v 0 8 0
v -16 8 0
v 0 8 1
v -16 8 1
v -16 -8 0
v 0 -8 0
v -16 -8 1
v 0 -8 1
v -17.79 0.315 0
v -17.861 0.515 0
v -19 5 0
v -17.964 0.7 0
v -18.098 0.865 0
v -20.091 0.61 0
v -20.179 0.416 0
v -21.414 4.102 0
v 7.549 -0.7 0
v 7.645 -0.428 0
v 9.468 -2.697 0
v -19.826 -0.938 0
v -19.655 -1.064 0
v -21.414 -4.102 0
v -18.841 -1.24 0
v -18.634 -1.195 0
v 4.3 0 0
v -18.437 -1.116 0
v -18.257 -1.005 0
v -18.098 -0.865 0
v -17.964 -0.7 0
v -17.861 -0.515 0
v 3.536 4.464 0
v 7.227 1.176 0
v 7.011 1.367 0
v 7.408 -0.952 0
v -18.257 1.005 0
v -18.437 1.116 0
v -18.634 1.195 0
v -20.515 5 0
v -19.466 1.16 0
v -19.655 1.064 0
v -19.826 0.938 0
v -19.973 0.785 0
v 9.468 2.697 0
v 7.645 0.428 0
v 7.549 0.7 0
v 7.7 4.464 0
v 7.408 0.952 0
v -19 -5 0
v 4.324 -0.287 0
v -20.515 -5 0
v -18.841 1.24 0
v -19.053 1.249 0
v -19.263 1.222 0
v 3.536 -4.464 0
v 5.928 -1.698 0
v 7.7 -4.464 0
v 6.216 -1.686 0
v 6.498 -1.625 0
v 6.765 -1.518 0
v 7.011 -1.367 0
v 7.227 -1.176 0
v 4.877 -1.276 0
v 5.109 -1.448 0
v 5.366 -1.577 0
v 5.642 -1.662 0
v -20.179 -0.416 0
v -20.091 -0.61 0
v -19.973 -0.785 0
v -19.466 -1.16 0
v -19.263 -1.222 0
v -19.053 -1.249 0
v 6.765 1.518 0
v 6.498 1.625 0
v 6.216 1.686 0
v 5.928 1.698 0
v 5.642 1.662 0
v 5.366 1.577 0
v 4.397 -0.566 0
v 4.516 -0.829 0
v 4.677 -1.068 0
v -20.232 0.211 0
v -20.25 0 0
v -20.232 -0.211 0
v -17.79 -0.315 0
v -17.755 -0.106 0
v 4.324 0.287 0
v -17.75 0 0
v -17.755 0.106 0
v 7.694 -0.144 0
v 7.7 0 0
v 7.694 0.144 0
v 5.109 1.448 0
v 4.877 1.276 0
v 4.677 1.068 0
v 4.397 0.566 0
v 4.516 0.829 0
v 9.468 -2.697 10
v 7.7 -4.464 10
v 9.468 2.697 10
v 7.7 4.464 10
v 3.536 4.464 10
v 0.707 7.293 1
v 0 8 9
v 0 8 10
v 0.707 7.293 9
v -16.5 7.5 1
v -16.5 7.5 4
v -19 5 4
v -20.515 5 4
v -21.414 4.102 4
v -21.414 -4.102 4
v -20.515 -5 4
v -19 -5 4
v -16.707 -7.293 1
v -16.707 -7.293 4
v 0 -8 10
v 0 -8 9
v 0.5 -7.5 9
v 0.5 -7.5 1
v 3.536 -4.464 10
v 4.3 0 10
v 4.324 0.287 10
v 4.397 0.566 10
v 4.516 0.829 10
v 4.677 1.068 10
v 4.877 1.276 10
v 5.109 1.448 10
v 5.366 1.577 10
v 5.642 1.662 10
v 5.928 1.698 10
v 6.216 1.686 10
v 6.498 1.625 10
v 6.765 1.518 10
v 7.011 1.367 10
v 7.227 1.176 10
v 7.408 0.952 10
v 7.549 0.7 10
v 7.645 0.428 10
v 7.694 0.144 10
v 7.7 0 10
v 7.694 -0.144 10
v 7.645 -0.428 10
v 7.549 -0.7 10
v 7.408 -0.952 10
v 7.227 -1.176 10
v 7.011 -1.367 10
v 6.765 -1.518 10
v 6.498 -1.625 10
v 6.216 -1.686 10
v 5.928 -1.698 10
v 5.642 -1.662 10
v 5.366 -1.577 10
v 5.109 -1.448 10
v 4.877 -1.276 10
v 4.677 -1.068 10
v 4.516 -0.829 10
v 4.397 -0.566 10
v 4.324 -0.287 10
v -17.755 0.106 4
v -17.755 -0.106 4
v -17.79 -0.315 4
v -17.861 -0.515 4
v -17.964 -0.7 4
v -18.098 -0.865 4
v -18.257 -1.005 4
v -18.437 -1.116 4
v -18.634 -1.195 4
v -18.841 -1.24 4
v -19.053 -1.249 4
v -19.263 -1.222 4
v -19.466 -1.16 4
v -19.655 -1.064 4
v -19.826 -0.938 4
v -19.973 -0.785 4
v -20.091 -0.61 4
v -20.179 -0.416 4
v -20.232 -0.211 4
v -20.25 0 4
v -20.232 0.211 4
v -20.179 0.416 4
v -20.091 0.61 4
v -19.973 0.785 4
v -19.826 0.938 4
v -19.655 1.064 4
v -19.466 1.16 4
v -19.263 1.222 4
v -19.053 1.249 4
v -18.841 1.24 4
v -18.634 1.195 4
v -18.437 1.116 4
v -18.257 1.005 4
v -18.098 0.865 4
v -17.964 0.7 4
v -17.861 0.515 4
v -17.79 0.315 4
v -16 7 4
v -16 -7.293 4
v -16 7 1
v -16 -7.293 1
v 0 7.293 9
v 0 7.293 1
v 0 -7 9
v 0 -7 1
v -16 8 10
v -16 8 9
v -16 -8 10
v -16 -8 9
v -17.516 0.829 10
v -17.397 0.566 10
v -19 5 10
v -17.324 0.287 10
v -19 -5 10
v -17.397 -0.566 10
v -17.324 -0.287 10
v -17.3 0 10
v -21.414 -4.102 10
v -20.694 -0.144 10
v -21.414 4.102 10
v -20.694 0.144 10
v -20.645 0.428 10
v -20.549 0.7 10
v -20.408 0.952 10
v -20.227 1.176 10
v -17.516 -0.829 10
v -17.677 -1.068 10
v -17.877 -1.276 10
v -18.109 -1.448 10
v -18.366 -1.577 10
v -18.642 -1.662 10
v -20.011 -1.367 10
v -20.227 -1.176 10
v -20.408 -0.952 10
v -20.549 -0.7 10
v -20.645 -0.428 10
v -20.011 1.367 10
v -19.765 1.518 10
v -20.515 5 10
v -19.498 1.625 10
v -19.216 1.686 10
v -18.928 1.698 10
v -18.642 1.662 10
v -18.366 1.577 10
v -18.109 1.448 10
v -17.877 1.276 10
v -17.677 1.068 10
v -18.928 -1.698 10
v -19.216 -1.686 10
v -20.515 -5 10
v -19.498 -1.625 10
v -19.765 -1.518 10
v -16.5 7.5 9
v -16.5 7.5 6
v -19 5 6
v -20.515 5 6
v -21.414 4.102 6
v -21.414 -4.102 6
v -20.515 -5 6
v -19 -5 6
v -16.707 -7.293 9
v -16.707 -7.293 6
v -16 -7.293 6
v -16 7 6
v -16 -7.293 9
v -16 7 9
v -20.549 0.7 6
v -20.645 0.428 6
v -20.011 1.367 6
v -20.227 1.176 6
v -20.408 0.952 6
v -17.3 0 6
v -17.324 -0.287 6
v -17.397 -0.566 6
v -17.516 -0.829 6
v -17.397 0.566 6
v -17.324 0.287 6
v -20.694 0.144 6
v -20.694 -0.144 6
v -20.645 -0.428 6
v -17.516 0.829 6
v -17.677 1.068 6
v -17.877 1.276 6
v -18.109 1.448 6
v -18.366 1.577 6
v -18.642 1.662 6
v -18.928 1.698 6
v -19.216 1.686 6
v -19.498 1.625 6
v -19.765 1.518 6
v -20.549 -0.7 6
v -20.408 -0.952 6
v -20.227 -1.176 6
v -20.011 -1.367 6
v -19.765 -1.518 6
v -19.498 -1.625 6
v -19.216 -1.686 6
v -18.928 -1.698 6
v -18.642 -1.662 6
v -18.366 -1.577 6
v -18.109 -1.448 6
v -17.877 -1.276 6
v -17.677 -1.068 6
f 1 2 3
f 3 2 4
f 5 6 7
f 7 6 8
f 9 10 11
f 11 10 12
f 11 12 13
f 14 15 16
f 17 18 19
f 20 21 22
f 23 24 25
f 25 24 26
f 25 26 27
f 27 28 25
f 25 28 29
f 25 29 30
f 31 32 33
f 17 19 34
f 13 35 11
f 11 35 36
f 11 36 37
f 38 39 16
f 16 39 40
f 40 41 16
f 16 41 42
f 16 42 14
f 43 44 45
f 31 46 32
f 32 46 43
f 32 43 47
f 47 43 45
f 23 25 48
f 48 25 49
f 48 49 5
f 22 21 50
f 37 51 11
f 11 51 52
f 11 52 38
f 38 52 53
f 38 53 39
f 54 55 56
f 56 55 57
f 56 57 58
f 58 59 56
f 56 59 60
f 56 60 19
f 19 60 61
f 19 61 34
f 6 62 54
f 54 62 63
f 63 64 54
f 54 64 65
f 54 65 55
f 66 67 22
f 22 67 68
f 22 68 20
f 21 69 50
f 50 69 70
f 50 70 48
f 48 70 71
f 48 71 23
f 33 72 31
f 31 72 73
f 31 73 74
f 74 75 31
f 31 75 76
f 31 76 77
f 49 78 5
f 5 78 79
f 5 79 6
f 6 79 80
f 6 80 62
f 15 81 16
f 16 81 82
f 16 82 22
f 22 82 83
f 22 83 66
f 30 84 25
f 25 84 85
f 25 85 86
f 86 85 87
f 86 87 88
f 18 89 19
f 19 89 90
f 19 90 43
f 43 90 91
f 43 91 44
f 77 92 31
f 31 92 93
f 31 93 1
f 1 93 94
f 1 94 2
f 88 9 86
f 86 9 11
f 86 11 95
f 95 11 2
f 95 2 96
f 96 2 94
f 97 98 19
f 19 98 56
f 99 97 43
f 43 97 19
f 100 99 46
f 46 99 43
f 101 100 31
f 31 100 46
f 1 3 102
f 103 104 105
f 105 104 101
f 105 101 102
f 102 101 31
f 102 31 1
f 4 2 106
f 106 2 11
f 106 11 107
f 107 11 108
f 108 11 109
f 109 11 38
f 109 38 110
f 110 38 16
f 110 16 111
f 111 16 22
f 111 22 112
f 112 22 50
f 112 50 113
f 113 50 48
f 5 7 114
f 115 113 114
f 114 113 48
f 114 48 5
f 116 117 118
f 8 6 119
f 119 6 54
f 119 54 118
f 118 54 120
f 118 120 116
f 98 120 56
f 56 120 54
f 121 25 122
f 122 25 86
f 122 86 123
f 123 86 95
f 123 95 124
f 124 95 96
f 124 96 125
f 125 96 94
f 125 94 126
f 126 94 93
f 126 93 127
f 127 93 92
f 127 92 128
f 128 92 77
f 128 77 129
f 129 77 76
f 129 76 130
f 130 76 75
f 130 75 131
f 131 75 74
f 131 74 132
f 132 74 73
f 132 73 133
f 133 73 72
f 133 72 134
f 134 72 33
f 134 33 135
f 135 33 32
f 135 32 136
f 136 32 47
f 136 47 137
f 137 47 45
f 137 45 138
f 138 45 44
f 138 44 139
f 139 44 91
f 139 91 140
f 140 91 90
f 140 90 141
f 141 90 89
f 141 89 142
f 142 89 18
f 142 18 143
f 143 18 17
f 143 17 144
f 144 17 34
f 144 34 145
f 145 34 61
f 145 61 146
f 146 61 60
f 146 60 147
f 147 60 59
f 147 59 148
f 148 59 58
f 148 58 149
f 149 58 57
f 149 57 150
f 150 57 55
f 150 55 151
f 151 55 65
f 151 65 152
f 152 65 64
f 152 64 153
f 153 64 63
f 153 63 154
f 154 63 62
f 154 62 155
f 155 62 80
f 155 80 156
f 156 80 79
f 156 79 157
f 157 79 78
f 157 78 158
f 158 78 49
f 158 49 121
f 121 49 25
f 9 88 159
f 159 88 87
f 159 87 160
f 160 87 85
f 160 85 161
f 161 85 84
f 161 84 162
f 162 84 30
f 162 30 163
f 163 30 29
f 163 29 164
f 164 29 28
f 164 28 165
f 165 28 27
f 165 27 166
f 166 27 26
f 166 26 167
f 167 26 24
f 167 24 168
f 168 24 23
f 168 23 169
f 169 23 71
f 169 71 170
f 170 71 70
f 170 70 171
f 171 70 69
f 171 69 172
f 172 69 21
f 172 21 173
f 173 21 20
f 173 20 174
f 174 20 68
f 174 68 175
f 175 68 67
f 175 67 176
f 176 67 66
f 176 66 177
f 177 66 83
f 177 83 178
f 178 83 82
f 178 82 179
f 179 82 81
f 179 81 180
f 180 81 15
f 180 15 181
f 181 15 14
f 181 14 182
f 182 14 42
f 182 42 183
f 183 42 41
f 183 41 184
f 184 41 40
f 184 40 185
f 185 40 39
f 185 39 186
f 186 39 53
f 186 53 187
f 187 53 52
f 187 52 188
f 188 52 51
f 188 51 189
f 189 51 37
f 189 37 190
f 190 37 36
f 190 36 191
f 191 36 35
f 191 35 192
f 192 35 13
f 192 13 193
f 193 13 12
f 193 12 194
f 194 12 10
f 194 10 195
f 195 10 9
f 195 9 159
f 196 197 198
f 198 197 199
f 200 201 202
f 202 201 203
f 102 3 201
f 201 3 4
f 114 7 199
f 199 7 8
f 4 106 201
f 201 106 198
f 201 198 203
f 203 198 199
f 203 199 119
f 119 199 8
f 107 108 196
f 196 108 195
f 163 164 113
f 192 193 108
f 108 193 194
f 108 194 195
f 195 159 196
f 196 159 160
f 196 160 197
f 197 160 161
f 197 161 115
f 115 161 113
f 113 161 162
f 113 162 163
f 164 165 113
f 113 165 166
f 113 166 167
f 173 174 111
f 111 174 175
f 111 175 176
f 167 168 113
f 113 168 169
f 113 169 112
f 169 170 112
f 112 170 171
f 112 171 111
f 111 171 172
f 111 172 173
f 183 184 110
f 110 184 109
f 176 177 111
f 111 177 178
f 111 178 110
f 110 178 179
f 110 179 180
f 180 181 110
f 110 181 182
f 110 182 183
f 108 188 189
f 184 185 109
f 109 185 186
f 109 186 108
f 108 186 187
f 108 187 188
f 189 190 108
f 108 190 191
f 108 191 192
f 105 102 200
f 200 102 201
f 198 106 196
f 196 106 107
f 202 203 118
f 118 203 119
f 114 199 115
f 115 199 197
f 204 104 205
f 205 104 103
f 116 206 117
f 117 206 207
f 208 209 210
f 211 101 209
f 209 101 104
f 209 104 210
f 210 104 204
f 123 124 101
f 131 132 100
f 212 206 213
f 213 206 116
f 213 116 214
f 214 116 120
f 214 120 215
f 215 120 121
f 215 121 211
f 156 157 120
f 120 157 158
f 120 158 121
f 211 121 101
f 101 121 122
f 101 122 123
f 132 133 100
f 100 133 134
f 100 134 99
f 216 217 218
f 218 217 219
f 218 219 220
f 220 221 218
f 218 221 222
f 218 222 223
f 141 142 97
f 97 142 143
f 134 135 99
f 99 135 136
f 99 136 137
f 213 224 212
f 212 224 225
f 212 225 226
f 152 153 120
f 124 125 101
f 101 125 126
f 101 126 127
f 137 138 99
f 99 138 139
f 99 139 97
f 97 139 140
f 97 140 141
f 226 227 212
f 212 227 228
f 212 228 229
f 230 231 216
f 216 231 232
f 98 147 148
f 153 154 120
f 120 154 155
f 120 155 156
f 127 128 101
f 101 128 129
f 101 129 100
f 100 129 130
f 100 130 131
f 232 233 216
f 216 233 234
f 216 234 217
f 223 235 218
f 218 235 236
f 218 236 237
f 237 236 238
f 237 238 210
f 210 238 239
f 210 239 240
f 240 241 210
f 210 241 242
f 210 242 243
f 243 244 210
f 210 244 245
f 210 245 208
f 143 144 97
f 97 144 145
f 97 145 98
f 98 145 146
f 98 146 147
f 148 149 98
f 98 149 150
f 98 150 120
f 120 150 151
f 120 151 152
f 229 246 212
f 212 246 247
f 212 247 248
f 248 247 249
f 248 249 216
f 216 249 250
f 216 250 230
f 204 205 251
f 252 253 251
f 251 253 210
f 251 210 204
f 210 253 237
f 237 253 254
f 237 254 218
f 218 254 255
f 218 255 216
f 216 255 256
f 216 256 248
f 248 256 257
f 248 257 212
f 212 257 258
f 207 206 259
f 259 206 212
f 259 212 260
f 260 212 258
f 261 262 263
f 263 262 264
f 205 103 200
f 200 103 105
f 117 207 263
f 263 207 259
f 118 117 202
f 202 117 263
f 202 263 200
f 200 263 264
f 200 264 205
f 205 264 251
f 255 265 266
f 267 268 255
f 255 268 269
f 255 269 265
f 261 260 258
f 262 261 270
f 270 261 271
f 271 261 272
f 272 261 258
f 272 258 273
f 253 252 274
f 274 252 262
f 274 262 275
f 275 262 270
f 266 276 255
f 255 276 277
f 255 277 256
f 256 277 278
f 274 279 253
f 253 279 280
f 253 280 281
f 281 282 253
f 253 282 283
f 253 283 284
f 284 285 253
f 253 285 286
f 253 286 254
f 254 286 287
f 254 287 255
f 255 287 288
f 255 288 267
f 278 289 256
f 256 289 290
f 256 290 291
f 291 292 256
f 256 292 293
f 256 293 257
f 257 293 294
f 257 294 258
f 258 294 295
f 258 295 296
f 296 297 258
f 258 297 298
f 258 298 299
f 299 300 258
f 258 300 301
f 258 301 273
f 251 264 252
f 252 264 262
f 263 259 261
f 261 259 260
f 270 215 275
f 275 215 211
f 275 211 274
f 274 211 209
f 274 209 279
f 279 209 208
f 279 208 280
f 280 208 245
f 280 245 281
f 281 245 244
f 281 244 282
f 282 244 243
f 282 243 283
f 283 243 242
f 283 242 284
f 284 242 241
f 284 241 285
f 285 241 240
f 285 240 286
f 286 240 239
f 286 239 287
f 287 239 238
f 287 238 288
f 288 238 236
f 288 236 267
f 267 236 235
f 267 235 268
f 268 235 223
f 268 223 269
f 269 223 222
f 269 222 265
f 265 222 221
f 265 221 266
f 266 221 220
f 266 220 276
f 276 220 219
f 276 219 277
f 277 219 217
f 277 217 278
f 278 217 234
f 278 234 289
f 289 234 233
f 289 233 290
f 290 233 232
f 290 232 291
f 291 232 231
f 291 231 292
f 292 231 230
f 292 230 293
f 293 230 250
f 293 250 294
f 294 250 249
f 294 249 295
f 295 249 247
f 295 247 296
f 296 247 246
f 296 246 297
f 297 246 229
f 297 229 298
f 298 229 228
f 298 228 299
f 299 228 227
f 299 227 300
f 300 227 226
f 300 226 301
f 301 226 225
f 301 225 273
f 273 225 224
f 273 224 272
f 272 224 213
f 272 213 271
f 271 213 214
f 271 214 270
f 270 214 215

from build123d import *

# Parameters (mm, degrees)
SKETCH1_R             = 1.7
SKETCH1_R_2           = 1.25
BOSS_EXTRUDE1_DEPTH   = 5
SKETCH11_W            = 16
SKETCH11_H            = 16
CUT_EXTRUDE6_DEPTH    = 4
SKETCH13_W            = 7.423787947
SKETCH13_H            = 16.529940363
CUT_EXTRUDE8_DEPTH    = 1
CHAMFER2_SIZE2        = 1
CHAMFER2_SIZE         = 0.707106781
CHAMFER2_EDGE_2_SIZE2 = 1
CHAMFER2_EDGE_2_SIZE  = 0.707106781
CHAMFER2_EDGE_3_SIZE2 = 1
CHAMFER2_EDGE_3_SIZE  = 0.707106781
CHAMFER2_EDGE_4_SIZE2 = 0.707106781
CHAMFER2_EDGE_4_SIZE  = 1
SKETCH15_R            = 1.7
CUT_EXTRUDE9_DEPTH    = 5


with BuildPart() as part:
    # Sketch1 → Boss-Extrude1 (new body)
    with BuildSketch(Plane.XY):
        Polygon((0, -8), (-16, -8), (-19, -5), (-20.515302869, -5), (-21.413786532, -4.101516338), (-21.413786532, -1.535700598), (-21.413786532, 4.101516338), (-20.515302869, 5), (-19, 5), (-16, 8), (0, 8), (3.535533906, 4.464466094), (6, 4.464466094), (7.7, 4.464466094), (9.467766953, 2.696699141), (9.467766953, -2.696699141), (7.7, -4.464466094), (6, -4.464466094), (3.535533906, -4.464466094), align=None)
        with Locations((6, 0)):
            Circle(SKETCH1_R, mode=Mode.SUBTRACT)
        with Locations((-19, 0)):
            Circle(SKETCH1_R_2, mode=Mode.SUBTRACT)
    extrude(amount=BOSS_EXTRUDE1_DEPTH)

    # Sketch11 → Cut-Extrude6 (cut)
    with BuildSketch(Plane.XY.offset(5)):
        with Locations((-8, 0)):
            Rectangle(SKETCH11_W, SKETCH11_H)
    extrude(amount=-CUT_EXTRUDE6_DEPTH, mode=Mode.SUBTRACT)

    # Sketch13 → Cut-Extrude8 (cut)
    with BuildSketch(Plane.XY.offset(5)):
        with Locations((-19.711893974, -0.264970181)):
            Rectangle(SKETCH13_W, SKETCH13_H)
    extrude(amount=-CUT_EXTRUDE8_DEPTH, mode=Mode.SUBTRACT)

    # Chamfer2
    chamfer2_edges = [part.edges().sort_by_distance(p)[0] for p in [
        (0, -8, 3),
    ]]
    chamfer(chamfer2_edges, length=CHAMFER2_SIZE, length2=CHAMFER2_SIZE2)

    # Chamfer2 edge 2
    chamfer2_edge_2_edges = [part.edges().sort_by_distance(p)[0] for p in [
        (0, 8, 3),
    ]]
    chamfer(chamfer2_edge_2_edges, length=CHAMFER2_EDGE_2_SIZE, length2=CHAMFER2_EDGE_2_SIZE2)

    # Chamfer2 edge 3
    chamfer2_edge_3_edges = [part.edges().sort_by_distance(p)[0] for p in [
        (-16, -8, 2.5),
    ]]
    chamfer(chamfer2_edge_3_edges, length=CHAMFER2_EDGE_3_SIZE, length2=CHAMFER2_EDGE_3_SIZE2)

    # Chamfer2 edge 4
    chamfer2_edge_4_edges = [part.edges().sort_by_distance(p)[0] for p in [
        (-16, 8, 2.5),
    ]]
    chamfer(chamfer2_edge_4_edges, length=CHAMFER2_EDGE_4_SIZE, length2=CHAMFER2_EDGE_4_SIZE2)

    # Mirror1: part across plane


with BuildPart() as part_1:
    add(part.part)
    add(part.part.mirror(Plane(origin=(0, 0, 5), x_dir=(1, 0, 0), z_dir=(0, 0, -1))))

    # Sketch15 → Cut-Extrude9 (cut)
    with BuildSketch(Plane.XY.offset(10)):
        with Locations((-19, 0)):
            Circle(SKETCH15_R)
    extrude(amount=-CUT_EXTRUDE9_DEPTH, mode=Mode.SUBTRACT)


solid = part_1.part
